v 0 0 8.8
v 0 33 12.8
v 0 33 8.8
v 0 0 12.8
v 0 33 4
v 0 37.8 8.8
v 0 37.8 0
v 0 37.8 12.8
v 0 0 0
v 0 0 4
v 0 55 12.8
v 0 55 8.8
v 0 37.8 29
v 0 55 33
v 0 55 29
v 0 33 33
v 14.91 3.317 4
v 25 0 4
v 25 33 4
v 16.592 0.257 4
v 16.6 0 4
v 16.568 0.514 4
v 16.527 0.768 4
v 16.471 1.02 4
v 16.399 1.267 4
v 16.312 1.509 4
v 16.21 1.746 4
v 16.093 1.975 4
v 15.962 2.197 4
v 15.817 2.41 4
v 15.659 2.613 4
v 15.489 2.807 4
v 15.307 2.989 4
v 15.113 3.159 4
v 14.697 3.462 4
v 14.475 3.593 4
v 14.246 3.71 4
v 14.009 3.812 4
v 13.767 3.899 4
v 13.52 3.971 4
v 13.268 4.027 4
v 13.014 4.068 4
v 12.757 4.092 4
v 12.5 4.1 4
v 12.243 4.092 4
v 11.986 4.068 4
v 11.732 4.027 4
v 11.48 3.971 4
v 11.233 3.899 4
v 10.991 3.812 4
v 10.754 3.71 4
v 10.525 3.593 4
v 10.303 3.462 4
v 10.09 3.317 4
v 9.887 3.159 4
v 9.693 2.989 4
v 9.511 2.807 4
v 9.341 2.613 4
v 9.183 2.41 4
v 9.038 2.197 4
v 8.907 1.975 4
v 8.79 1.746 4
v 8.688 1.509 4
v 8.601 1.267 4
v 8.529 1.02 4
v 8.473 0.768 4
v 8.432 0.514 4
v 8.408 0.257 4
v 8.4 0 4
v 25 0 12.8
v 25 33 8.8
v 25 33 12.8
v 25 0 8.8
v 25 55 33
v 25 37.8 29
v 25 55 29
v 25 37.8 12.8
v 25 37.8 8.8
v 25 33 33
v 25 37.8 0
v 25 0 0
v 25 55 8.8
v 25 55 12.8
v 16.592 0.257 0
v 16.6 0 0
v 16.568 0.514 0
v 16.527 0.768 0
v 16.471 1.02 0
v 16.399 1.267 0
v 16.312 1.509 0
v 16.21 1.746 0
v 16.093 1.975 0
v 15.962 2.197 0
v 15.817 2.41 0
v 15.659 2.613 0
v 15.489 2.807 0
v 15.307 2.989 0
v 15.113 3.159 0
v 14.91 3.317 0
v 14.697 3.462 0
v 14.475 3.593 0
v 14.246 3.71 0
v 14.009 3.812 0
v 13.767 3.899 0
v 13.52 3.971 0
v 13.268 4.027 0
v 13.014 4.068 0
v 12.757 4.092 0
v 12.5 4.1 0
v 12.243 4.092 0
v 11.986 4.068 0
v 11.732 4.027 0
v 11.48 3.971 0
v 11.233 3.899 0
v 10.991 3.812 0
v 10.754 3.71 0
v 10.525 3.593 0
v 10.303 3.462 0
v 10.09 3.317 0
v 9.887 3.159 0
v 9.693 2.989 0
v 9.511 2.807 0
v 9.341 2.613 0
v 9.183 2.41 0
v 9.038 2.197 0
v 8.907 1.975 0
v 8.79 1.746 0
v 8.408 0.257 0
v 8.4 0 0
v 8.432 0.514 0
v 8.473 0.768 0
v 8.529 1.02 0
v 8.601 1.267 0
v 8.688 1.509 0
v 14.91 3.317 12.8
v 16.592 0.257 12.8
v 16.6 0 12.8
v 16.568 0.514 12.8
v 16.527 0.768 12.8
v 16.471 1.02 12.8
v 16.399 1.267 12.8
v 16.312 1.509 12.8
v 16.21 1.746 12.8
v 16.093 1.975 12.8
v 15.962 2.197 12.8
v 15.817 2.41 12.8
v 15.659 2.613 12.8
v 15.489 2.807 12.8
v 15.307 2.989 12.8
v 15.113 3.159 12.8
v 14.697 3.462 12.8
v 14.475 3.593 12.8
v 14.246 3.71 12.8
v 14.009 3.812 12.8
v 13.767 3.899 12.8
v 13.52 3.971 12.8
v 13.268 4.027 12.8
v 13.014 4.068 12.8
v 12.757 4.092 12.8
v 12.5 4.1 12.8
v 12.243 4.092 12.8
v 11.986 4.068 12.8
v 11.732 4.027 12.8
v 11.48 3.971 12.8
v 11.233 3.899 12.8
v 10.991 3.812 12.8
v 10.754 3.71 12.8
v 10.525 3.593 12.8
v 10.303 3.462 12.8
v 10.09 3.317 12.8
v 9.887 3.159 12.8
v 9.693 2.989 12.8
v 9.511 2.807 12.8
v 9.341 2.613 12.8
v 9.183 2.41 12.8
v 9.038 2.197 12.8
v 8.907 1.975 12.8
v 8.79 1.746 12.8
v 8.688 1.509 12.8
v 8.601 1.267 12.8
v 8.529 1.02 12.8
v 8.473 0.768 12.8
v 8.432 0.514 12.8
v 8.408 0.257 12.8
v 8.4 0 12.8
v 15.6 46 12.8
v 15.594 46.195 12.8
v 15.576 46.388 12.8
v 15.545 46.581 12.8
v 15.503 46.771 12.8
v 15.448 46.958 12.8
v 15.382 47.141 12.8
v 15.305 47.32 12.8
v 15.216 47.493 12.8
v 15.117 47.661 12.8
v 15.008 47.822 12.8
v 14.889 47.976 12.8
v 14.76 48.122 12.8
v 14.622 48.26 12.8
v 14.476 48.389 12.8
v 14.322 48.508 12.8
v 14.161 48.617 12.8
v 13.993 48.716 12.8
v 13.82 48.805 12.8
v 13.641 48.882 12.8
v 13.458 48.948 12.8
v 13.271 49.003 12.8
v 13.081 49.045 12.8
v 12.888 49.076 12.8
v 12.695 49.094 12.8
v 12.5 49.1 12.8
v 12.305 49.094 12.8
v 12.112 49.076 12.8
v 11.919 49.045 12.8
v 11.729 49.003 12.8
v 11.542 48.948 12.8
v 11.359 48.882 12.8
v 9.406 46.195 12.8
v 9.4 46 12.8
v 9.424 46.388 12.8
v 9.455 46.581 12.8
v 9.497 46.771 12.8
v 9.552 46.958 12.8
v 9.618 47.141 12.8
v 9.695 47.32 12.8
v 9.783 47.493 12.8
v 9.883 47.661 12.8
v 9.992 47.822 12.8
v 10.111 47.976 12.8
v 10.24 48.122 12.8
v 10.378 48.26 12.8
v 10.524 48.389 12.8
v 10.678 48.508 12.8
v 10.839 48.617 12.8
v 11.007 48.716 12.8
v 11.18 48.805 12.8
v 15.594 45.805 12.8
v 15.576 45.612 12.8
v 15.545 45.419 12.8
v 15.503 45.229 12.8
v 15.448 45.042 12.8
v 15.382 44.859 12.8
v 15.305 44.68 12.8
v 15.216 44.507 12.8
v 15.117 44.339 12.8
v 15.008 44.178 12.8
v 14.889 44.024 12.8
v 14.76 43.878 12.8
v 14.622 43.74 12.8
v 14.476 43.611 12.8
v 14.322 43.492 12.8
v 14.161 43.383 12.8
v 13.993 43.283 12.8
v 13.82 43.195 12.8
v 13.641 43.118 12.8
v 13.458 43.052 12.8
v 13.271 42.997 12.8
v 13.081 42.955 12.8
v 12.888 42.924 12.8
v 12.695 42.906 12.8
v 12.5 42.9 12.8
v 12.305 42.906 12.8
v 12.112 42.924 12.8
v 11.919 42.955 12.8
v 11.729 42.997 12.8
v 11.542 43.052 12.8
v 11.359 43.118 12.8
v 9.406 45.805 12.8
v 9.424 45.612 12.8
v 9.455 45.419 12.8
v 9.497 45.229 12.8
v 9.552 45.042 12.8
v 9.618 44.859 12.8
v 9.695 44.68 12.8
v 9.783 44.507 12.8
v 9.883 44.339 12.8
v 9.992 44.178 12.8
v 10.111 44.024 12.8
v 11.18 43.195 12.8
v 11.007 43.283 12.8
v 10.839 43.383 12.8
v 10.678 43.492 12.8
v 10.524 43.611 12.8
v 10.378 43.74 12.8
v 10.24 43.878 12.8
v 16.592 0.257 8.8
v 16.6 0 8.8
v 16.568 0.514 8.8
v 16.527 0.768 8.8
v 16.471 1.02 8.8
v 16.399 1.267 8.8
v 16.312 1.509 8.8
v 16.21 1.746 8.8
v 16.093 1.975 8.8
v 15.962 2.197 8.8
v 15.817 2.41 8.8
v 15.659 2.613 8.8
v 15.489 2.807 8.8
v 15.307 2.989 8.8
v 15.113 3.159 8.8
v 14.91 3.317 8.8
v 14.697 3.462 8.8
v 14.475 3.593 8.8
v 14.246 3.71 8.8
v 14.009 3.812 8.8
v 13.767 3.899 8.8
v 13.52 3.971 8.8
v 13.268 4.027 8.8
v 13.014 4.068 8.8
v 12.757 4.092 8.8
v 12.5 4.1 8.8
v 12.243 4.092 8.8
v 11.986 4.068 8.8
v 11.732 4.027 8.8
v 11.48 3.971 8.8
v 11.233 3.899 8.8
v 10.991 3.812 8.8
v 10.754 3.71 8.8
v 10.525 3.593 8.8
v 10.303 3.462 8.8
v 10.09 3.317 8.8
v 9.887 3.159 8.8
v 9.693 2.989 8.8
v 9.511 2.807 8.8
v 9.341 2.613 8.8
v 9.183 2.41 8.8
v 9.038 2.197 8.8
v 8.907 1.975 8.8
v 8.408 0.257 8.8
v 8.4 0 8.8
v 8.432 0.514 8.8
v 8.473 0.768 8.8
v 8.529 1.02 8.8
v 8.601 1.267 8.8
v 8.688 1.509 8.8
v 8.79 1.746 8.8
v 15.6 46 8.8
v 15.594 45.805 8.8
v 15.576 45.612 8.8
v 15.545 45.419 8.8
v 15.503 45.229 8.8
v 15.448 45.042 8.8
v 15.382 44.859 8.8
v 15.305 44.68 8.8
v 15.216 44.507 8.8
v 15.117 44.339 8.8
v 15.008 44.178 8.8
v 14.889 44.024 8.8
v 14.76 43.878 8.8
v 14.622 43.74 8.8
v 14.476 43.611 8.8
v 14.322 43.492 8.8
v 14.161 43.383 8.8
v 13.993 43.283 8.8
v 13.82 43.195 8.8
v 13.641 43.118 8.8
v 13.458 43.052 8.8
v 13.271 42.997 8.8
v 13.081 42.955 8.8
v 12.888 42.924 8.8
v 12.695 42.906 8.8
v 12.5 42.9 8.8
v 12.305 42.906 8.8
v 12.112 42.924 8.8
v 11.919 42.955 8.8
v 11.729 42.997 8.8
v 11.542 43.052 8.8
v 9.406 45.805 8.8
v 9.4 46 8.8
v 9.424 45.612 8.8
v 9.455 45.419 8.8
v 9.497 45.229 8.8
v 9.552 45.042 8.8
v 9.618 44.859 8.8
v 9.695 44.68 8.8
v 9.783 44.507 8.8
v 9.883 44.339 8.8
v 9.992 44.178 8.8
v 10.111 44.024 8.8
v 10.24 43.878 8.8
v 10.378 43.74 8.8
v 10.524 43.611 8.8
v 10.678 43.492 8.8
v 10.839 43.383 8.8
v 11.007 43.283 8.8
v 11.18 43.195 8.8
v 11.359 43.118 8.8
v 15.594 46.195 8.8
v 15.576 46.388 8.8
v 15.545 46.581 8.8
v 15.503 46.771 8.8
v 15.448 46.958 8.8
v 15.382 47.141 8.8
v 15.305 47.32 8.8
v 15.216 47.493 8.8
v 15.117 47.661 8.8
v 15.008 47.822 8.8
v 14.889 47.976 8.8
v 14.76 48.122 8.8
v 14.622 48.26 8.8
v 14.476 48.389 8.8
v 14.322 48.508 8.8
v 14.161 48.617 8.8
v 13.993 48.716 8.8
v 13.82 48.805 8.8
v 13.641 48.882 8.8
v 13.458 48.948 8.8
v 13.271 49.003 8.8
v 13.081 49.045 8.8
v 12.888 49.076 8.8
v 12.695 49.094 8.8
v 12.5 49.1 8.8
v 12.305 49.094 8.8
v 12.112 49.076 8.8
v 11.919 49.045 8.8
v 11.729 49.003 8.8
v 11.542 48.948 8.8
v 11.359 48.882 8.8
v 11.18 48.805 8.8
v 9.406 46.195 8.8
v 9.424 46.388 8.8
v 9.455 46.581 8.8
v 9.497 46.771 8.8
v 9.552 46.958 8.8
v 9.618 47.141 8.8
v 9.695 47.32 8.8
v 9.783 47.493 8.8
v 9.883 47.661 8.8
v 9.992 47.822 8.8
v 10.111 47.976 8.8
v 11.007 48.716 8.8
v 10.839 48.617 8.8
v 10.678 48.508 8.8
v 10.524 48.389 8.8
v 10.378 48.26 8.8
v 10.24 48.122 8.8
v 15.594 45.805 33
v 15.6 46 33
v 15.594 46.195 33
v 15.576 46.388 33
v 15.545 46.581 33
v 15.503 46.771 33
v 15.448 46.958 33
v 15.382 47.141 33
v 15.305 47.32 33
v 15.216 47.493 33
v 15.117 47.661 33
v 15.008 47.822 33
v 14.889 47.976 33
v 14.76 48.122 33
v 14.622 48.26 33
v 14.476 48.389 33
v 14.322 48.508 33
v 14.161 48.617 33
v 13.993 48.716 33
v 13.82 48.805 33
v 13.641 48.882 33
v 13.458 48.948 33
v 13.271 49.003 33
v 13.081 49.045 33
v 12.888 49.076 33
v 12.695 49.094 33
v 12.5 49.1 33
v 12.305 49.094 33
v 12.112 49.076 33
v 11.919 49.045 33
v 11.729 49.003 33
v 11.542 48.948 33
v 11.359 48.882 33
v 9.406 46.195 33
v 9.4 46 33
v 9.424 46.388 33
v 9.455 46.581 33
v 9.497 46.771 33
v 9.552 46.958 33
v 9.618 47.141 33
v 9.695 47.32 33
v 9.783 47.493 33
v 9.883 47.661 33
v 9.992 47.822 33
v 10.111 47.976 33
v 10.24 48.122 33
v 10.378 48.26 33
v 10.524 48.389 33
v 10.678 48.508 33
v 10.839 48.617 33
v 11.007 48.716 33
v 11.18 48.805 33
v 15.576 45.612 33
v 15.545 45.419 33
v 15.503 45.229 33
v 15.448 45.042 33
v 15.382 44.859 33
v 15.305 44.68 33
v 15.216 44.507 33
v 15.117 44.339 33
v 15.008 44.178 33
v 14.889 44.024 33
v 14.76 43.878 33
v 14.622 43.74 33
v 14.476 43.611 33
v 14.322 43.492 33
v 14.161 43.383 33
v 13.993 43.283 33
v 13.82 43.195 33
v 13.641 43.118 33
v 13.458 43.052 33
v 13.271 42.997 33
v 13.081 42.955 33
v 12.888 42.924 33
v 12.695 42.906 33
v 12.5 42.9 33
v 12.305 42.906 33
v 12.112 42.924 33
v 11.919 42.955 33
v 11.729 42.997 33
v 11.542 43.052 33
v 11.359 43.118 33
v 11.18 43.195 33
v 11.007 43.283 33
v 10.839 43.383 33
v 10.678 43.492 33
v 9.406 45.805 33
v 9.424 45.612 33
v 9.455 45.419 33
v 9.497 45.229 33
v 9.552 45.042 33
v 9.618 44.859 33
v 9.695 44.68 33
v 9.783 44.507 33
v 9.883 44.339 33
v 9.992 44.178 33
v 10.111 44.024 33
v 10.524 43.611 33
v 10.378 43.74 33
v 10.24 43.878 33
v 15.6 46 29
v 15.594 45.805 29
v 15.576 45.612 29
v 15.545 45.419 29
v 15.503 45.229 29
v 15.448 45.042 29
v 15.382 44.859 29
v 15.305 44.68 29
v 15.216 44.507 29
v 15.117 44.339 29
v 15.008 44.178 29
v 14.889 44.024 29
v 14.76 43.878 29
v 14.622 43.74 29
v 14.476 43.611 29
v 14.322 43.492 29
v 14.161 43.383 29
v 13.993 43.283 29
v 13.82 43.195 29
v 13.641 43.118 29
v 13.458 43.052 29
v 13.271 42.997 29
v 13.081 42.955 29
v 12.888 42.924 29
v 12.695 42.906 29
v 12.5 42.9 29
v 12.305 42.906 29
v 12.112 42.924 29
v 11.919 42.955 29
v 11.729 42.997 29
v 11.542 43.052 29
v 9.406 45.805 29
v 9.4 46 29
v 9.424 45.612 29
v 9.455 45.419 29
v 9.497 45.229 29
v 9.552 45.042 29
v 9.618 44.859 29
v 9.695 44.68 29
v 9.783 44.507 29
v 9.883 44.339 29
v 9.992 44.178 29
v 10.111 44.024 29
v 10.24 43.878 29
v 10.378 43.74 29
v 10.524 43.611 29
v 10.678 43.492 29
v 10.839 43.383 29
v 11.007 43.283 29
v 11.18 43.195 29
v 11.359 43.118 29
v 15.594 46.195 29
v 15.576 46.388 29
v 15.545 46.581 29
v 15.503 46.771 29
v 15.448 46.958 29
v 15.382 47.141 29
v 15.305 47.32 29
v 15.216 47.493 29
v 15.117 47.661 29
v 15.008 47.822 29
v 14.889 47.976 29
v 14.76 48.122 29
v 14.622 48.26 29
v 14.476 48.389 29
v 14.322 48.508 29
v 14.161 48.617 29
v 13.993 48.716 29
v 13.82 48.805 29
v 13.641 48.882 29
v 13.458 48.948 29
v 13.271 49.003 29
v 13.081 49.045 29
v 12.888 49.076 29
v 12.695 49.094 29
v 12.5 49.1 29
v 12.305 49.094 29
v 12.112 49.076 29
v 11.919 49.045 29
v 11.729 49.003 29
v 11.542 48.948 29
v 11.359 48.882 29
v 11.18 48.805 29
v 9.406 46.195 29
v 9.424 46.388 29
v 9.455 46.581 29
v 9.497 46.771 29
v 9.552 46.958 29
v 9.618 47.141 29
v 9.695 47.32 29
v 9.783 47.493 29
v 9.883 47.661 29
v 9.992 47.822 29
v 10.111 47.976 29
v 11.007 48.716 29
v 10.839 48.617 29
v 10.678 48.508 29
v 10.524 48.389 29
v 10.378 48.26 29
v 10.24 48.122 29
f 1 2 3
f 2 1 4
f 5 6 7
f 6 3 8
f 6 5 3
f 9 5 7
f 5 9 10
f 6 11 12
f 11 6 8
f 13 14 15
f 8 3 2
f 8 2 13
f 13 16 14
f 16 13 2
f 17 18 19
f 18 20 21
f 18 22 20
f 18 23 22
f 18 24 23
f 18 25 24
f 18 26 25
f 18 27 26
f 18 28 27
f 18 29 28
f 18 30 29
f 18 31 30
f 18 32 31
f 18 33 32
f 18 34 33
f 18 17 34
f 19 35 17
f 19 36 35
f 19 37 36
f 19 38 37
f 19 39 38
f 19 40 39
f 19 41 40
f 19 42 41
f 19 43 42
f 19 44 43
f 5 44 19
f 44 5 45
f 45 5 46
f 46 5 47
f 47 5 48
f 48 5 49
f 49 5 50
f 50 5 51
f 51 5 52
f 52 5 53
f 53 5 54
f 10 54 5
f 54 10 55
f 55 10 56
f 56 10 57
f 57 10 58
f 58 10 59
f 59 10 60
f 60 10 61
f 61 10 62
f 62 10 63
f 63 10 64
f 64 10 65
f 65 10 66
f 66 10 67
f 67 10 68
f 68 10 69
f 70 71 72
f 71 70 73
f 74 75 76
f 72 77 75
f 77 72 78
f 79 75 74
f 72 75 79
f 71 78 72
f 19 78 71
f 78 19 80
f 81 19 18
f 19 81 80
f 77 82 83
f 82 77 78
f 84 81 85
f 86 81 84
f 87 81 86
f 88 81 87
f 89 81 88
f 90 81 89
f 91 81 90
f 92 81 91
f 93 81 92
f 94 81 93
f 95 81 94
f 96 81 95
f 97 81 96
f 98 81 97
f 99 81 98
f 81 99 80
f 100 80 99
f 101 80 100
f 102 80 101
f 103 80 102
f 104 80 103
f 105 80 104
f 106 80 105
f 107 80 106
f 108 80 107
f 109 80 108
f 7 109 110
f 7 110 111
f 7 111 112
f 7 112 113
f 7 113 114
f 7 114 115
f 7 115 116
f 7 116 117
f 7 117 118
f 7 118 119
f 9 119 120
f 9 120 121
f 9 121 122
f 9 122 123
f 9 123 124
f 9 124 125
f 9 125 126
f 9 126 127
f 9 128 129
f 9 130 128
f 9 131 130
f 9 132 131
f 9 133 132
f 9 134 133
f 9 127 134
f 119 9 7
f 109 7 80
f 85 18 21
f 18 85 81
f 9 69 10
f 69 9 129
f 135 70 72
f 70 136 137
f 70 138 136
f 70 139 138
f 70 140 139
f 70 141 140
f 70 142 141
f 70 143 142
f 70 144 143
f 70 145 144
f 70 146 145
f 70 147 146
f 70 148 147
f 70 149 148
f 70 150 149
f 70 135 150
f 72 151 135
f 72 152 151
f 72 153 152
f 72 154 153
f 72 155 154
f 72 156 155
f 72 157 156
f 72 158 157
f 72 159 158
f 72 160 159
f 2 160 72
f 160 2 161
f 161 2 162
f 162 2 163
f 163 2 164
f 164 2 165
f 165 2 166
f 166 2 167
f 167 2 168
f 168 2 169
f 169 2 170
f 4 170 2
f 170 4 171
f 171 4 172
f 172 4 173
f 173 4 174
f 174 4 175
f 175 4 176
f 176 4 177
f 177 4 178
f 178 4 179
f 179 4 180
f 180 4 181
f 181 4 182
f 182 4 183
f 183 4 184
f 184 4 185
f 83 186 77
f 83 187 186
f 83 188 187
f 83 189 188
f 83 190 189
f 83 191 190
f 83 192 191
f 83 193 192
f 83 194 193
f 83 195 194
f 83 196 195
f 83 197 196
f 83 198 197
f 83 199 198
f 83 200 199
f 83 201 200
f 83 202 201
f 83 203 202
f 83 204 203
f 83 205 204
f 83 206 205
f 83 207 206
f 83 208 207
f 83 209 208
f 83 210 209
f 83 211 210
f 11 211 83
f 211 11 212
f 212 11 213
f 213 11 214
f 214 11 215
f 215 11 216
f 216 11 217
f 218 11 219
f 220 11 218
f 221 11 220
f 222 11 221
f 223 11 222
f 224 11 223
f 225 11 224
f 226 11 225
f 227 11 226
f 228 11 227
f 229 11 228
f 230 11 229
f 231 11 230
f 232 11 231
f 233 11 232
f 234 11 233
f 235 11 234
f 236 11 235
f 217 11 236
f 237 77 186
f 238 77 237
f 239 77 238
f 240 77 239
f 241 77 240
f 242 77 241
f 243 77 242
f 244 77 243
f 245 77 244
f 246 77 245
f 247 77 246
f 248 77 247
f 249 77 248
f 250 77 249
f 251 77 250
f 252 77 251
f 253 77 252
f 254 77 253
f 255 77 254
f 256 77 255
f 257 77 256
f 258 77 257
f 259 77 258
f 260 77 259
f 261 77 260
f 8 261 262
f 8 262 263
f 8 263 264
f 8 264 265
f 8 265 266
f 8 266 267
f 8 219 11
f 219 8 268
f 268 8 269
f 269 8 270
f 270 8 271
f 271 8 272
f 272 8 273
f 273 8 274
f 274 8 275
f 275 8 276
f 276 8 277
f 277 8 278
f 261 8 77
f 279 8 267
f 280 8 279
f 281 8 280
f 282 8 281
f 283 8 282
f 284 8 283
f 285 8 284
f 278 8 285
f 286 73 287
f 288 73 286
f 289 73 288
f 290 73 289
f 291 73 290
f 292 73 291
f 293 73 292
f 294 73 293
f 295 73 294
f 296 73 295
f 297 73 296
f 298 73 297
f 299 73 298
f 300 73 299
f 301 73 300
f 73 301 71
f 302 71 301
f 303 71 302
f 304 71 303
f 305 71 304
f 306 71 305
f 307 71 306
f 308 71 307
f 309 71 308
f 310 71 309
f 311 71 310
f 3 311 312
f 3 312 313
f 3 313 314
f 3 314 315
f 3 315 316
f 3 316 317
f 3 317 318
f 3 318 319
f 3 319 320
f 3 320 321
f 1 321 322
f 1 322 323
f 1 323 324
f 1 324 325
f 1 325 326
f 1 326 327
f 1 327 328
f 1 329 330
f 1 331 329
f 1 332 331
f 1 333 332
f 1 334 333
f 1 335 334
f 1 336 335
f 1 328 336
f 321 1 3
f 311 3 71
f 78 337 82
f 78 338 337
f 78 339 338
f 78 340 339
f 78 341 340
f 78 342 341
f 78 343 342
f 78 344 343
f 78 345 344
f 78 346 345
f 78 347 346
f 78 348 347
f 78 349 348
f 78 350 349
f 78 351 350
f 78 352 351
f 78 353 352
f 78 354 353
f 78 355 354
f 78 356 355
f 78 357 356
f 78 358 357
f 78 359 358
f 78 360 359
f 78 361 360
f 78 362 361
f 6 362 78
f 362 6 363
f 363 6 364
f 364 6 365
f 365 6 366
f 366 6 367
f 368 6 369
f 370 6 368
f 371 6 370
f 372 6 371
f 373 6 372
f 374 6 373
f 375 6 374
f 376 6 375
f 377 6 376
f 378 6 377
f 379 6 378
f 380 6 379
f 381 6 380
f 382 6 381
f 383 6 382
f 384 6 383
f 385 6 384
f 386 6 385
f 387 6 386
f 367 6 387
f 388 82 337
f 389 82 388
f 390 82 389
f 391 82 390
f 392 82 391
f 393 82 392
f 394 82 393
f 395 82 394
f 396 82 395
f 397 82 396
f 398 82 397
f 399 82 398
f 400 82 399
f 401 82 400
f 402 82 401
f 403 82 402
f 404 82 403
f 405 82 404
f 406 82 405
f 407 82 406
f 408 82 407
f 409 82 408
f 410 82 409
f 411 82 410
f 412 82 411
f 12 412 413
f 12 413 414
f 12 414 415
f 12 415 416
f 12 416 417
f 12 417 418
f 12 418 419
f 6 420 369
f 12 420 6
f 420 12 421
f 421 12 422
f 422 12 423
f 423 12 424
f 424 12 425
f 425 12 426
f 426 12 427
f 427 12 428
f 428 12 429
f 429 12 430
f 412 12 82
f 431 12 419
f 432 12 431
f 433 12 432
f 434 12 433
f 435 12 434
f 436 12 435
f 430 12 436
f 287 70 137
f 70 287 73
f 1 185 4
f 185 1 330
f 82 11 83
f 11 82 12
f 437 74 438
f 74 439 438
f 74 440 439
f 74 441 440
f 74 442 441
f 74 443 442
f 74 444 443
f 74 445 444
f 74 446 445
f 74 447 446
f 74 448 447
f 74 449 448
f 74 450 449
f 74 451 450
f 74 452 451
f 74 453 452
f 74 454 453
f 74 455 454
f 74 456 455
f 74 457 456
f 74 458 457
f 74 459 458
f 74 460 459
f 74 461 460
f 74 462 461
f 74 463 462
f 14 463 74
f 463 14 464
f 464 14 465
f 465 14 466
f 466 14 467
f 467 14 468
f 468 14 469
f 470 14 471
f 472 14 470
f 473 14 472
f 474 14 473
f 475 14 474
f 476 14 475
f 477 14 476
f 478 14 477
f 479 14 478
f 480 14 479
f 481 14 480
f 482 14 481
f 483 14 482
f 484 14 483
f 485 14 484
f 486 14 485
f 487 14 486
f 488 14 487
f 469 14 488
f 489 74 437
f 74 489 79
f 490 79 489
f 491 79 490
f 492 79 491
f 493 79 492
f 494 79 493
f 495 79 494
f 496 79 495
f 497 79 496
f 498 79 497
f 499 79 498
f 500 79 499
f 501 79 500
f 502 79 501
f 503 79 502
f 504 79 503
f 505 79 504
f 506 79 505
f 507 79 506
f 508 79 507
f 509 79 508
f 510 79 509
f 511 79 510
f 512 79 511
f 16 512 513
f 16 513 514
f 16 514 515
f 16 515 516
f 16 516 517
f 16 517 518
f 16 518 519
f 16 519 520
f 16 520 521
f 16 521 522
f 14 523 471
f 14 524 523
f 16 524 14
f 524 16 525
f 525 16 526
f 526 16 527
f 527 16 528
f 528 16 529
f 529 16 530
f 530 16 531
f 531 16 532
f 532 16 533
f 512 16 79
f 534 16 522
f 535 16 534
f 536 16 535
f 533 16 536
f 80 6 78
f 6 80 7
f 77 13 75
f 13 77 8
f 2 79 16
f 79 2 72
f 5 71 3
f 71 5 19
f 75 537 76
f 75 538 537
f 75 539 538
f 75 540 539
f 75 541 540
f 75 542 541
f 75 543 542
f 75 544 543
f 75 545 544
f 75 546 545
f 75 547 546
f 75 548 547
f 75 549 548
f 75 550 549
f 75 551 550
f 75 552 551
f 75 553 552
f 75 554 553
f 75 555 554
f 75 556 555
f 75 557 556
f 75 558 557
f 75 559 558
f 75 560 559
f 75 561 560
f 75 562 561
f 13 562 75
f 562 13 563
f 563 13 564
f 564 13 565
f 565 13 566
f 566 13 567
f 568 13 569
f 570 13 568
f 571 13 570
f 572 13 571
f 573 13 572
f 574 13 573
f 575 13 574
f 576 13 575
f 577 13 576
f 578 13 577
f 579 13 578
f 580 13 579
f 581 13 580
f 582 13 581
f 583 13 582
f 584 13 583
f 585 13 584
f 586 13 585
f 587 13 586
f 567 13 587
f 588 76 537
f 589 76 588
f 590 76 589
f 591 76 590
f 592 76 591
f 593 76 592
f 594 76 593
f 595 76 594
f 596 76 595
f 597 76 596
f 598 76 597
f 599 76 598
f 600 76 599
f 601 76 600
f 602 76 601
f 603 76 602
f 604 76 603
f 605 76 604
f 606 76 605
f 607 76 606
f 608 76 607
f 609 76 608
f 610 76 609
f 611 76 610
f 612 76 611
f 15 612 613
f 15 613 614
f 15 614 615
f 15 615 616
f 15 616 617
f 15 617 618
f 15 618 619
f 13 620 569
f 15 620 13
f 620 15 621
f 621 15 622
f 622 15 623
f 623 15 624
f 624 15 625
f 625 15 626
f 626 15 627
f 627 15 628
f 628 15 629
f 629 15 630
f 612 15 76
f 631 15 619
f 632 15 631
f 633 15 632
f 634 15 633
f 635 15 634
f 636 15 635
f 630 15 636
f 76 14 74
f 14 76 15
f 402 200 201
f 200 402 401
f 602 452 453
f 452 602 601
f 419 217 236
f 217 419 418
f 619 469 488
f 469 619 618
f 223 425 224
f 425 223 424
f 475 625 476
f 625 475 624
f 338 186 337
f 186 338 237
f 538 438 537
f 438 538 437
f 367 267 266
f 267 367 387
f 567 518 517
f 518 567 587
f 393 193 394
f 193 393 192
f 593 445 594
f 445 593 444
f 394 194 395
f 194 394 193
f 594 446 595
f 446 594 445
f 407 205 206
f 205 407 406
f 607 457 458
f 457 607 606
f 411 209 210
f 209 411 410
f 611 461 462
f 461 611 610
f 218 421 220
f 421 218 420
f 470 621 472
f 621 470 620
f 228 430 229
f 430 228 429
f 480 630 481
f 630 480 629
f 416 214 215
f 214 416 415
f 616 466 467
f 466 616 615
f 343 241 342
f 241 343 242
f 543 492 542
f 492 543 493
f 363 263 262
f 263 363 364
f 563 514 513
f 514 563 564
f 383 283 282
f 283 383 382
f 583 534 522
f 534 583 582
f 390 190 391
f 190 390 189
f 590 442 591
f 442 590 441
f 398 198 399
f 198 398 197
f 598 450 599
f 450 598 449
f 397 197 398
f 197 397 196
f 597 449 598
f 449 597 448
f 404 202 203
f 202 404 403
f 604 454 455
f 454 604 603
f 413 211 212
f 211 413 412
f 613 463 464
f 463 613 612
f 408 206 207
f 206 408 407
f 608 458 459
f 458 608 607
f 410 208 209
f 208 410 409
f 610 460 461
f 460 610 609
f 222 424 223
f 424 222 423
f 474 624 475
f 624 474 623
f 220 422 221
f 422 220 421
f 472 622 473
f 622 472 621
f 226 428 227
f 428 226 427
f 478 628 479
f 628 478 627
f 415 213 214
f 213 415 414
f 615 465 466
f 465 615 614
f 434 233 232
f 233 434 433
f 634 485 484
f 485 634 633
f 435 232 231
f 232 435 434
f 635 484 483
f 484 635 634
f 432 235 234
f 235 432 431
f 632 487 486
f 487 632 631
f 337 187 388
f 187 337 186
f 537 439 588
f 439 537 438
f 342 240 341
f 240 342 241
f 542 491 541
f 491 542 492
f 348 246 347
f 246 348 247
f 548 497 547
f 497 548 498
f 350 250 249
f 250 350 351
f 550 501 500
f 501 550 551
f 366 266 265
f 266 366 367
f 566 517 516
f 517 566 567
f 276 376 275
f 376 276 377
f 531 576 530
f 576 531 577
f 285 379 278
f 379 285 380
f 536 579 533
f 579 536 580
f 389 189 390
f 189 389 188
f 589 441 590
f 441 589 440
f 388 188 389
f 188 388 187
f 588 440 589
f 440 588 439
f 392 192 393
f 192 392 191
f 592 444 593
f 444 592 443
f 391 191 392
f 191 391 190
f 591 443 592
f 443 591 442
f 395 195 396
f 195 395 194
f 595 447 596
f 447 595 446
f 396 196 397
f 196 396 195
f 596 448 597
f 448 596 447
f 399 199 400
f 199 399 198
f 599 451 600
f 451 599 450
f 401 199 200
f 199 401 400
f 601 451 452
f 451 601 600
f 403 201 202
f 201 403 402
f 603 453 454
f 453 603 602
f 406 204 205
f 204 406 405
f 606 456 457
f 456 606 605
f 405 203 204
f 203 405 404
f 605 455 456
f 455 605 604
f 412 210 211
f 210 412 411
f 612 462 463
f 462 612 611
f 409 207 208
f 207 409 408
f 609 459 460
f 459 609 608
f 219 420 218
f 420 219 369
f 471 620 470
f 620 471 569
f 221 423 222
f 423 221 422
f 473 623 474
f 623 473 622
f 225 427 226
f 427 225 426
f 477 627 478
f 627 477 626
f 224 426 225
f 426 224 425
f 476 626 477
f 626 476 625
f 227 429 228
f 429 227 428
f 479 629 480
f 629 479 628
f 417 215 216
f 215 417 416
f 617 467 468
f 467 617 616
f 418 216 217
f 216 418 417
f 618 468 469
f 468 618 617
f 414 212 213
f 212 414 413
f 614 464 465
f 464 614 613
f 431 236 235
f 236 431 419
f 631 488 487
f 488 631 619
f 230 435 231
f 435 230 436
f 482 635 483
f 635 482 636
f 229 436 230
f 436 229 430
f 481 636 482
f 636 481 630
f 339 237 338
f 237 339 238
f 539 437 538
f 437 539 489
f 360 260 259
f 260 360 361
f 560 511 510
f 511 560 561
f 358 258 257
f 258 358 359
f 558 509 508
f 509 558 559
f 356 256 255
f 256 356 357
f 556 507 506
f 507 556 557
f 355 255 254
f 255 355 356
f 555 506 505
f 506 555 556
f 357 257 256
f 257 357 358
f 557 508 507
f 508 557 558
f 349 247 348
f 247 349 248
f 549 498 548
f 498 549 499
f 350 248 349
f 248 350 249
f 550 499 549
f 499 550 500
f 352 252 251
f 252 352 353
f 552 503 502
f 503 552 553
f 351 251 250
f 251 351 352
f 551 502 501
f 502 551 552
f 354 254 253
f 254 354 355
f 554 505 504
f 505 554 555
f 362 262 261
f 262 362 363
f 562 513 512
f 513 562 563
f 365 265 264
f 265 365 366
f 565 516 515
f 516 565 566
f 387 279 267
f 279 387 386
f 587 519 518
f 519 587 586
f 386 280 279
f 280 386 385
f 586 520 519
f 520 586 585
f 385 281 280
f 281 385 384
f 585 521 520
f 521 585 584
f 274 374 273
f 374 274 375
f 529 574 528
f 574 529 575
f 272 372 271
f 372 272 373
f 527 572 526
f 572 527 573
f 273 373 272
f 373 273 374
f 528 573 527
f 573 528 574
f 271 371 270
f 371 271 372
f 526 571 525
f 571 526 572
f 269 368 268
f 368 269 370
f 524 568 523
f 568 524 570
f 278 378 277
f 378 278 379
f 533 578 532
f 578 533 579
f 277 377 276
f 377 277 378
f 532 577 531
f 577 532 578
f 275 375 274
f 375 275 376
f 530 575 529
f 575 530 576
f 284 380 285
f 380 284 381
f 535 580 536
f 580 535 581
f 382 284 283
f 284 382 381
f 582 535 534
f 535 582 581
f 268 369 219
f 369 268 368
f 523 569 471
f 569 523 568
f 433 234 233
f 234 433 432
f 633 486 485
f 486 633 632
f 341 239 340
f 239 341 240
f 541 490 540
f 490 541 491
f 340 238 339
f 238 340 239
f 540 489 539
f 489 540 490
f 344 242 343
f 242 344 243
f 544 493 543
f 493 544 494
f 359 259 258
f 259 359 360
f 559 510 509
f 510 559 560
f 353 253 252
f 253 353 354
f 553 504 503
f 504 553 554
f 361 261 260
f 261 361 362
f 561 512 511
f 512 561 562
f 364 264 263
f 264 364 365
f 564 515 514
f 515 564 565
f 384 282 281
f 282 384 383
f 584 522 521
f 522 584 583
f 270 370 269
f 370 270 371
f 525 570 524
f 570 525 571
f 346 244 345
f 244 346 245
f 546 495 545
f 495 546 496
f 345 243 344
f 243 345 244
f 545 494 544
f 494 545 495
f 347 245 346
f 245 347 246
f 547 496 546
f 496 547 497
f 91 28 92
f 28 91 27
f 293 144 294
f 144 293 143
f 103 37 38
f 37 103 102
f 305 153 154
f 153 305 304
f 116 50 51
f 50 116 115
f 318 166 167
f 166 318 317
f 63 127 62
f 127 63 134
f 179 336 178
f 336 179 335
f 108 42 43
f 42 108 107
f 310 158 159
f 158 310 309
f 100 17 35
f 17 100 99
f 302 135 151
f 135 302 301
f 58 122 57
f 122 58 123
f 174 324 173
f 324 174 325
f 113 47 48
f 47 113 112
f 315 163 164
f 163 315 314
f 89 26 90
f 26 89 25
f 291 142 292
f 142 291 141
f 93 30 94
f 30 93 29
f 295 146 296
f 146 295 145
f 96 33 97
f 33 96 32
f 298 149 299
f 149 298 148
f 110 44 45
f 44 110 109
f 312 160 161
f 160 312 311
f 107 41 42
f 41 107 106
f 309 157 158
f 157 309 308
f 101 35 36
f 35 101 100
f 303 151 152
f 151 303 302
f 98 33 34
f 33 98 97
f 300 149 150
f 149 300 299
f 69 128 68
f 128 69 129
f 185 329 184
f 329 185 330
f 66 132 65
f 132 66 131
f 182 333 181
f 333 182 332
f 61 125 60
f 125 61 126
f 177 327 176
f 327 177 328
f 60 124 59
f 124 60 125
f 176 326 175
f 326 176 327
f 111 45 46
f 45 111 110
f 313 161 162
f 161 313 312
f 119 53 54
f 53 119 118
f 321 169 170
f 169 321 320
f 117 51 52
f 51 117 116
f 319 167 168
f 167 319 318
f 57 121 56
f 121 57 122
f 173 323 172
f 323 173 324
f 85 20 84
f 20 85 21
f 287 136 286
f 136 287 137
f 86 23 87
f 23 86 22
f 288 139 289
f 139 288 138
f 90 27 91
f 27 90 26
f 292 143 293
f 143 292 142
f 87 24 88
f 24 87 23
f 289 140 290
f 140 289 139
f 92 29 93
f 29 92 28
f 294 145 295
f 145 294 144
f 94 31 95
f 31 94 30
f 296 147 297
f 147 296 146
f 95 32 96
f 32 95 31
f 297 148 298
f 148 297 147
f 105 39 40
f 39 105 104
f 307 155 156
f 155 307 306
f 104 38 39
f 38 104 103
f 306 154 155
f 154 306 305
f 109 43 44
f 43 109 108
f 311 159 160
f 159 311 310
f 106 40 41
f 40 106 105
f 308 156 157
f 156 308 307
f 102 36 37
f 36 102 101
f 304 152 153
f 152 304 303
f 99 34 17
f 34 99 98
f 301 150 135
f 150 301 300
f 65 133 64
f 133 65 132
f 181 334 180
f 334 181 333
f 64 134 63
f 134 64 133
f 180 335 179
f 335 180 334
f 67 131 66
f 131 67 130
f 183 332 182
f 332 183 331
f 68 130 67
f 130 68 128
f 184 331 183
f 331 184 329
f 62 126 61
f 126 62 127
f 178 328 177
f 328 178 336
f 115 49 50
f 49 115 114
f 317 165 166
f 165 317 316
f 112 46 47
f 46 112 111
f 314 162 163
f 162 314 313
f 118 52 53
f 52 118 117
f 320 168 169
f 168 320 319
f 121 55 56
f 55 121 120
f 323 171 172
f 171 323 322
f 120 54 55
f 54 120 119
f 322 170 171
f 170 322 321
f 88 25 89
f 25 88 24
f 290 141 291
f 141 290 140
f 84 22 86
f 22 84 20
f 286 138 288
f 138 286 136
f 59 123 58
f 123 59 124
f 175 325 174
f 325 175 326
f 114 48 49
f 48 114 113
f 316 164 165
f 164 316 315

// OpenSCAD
$fn=100;

thickness=4;
widthMid=4.8;
wide=25;

difference() {
    union() {
        cube([wide,70/2,thickness]);
        translate([0,0,thickness+widthMid])
            cube([wide,55,thickness]);
        translate([0,(70-thickness)/2,0])
            cube([wide,widthMid,37.8-widthMid]);
        translate([0,35,thickness+25])
            cube([wide,20,thickness]);
    }
    translate([wide/2,46,0])
        cylinder(d=6.2,h=50);
    translate([wide/2,0,0]) cylinder(d=8.2,h=50);
}
